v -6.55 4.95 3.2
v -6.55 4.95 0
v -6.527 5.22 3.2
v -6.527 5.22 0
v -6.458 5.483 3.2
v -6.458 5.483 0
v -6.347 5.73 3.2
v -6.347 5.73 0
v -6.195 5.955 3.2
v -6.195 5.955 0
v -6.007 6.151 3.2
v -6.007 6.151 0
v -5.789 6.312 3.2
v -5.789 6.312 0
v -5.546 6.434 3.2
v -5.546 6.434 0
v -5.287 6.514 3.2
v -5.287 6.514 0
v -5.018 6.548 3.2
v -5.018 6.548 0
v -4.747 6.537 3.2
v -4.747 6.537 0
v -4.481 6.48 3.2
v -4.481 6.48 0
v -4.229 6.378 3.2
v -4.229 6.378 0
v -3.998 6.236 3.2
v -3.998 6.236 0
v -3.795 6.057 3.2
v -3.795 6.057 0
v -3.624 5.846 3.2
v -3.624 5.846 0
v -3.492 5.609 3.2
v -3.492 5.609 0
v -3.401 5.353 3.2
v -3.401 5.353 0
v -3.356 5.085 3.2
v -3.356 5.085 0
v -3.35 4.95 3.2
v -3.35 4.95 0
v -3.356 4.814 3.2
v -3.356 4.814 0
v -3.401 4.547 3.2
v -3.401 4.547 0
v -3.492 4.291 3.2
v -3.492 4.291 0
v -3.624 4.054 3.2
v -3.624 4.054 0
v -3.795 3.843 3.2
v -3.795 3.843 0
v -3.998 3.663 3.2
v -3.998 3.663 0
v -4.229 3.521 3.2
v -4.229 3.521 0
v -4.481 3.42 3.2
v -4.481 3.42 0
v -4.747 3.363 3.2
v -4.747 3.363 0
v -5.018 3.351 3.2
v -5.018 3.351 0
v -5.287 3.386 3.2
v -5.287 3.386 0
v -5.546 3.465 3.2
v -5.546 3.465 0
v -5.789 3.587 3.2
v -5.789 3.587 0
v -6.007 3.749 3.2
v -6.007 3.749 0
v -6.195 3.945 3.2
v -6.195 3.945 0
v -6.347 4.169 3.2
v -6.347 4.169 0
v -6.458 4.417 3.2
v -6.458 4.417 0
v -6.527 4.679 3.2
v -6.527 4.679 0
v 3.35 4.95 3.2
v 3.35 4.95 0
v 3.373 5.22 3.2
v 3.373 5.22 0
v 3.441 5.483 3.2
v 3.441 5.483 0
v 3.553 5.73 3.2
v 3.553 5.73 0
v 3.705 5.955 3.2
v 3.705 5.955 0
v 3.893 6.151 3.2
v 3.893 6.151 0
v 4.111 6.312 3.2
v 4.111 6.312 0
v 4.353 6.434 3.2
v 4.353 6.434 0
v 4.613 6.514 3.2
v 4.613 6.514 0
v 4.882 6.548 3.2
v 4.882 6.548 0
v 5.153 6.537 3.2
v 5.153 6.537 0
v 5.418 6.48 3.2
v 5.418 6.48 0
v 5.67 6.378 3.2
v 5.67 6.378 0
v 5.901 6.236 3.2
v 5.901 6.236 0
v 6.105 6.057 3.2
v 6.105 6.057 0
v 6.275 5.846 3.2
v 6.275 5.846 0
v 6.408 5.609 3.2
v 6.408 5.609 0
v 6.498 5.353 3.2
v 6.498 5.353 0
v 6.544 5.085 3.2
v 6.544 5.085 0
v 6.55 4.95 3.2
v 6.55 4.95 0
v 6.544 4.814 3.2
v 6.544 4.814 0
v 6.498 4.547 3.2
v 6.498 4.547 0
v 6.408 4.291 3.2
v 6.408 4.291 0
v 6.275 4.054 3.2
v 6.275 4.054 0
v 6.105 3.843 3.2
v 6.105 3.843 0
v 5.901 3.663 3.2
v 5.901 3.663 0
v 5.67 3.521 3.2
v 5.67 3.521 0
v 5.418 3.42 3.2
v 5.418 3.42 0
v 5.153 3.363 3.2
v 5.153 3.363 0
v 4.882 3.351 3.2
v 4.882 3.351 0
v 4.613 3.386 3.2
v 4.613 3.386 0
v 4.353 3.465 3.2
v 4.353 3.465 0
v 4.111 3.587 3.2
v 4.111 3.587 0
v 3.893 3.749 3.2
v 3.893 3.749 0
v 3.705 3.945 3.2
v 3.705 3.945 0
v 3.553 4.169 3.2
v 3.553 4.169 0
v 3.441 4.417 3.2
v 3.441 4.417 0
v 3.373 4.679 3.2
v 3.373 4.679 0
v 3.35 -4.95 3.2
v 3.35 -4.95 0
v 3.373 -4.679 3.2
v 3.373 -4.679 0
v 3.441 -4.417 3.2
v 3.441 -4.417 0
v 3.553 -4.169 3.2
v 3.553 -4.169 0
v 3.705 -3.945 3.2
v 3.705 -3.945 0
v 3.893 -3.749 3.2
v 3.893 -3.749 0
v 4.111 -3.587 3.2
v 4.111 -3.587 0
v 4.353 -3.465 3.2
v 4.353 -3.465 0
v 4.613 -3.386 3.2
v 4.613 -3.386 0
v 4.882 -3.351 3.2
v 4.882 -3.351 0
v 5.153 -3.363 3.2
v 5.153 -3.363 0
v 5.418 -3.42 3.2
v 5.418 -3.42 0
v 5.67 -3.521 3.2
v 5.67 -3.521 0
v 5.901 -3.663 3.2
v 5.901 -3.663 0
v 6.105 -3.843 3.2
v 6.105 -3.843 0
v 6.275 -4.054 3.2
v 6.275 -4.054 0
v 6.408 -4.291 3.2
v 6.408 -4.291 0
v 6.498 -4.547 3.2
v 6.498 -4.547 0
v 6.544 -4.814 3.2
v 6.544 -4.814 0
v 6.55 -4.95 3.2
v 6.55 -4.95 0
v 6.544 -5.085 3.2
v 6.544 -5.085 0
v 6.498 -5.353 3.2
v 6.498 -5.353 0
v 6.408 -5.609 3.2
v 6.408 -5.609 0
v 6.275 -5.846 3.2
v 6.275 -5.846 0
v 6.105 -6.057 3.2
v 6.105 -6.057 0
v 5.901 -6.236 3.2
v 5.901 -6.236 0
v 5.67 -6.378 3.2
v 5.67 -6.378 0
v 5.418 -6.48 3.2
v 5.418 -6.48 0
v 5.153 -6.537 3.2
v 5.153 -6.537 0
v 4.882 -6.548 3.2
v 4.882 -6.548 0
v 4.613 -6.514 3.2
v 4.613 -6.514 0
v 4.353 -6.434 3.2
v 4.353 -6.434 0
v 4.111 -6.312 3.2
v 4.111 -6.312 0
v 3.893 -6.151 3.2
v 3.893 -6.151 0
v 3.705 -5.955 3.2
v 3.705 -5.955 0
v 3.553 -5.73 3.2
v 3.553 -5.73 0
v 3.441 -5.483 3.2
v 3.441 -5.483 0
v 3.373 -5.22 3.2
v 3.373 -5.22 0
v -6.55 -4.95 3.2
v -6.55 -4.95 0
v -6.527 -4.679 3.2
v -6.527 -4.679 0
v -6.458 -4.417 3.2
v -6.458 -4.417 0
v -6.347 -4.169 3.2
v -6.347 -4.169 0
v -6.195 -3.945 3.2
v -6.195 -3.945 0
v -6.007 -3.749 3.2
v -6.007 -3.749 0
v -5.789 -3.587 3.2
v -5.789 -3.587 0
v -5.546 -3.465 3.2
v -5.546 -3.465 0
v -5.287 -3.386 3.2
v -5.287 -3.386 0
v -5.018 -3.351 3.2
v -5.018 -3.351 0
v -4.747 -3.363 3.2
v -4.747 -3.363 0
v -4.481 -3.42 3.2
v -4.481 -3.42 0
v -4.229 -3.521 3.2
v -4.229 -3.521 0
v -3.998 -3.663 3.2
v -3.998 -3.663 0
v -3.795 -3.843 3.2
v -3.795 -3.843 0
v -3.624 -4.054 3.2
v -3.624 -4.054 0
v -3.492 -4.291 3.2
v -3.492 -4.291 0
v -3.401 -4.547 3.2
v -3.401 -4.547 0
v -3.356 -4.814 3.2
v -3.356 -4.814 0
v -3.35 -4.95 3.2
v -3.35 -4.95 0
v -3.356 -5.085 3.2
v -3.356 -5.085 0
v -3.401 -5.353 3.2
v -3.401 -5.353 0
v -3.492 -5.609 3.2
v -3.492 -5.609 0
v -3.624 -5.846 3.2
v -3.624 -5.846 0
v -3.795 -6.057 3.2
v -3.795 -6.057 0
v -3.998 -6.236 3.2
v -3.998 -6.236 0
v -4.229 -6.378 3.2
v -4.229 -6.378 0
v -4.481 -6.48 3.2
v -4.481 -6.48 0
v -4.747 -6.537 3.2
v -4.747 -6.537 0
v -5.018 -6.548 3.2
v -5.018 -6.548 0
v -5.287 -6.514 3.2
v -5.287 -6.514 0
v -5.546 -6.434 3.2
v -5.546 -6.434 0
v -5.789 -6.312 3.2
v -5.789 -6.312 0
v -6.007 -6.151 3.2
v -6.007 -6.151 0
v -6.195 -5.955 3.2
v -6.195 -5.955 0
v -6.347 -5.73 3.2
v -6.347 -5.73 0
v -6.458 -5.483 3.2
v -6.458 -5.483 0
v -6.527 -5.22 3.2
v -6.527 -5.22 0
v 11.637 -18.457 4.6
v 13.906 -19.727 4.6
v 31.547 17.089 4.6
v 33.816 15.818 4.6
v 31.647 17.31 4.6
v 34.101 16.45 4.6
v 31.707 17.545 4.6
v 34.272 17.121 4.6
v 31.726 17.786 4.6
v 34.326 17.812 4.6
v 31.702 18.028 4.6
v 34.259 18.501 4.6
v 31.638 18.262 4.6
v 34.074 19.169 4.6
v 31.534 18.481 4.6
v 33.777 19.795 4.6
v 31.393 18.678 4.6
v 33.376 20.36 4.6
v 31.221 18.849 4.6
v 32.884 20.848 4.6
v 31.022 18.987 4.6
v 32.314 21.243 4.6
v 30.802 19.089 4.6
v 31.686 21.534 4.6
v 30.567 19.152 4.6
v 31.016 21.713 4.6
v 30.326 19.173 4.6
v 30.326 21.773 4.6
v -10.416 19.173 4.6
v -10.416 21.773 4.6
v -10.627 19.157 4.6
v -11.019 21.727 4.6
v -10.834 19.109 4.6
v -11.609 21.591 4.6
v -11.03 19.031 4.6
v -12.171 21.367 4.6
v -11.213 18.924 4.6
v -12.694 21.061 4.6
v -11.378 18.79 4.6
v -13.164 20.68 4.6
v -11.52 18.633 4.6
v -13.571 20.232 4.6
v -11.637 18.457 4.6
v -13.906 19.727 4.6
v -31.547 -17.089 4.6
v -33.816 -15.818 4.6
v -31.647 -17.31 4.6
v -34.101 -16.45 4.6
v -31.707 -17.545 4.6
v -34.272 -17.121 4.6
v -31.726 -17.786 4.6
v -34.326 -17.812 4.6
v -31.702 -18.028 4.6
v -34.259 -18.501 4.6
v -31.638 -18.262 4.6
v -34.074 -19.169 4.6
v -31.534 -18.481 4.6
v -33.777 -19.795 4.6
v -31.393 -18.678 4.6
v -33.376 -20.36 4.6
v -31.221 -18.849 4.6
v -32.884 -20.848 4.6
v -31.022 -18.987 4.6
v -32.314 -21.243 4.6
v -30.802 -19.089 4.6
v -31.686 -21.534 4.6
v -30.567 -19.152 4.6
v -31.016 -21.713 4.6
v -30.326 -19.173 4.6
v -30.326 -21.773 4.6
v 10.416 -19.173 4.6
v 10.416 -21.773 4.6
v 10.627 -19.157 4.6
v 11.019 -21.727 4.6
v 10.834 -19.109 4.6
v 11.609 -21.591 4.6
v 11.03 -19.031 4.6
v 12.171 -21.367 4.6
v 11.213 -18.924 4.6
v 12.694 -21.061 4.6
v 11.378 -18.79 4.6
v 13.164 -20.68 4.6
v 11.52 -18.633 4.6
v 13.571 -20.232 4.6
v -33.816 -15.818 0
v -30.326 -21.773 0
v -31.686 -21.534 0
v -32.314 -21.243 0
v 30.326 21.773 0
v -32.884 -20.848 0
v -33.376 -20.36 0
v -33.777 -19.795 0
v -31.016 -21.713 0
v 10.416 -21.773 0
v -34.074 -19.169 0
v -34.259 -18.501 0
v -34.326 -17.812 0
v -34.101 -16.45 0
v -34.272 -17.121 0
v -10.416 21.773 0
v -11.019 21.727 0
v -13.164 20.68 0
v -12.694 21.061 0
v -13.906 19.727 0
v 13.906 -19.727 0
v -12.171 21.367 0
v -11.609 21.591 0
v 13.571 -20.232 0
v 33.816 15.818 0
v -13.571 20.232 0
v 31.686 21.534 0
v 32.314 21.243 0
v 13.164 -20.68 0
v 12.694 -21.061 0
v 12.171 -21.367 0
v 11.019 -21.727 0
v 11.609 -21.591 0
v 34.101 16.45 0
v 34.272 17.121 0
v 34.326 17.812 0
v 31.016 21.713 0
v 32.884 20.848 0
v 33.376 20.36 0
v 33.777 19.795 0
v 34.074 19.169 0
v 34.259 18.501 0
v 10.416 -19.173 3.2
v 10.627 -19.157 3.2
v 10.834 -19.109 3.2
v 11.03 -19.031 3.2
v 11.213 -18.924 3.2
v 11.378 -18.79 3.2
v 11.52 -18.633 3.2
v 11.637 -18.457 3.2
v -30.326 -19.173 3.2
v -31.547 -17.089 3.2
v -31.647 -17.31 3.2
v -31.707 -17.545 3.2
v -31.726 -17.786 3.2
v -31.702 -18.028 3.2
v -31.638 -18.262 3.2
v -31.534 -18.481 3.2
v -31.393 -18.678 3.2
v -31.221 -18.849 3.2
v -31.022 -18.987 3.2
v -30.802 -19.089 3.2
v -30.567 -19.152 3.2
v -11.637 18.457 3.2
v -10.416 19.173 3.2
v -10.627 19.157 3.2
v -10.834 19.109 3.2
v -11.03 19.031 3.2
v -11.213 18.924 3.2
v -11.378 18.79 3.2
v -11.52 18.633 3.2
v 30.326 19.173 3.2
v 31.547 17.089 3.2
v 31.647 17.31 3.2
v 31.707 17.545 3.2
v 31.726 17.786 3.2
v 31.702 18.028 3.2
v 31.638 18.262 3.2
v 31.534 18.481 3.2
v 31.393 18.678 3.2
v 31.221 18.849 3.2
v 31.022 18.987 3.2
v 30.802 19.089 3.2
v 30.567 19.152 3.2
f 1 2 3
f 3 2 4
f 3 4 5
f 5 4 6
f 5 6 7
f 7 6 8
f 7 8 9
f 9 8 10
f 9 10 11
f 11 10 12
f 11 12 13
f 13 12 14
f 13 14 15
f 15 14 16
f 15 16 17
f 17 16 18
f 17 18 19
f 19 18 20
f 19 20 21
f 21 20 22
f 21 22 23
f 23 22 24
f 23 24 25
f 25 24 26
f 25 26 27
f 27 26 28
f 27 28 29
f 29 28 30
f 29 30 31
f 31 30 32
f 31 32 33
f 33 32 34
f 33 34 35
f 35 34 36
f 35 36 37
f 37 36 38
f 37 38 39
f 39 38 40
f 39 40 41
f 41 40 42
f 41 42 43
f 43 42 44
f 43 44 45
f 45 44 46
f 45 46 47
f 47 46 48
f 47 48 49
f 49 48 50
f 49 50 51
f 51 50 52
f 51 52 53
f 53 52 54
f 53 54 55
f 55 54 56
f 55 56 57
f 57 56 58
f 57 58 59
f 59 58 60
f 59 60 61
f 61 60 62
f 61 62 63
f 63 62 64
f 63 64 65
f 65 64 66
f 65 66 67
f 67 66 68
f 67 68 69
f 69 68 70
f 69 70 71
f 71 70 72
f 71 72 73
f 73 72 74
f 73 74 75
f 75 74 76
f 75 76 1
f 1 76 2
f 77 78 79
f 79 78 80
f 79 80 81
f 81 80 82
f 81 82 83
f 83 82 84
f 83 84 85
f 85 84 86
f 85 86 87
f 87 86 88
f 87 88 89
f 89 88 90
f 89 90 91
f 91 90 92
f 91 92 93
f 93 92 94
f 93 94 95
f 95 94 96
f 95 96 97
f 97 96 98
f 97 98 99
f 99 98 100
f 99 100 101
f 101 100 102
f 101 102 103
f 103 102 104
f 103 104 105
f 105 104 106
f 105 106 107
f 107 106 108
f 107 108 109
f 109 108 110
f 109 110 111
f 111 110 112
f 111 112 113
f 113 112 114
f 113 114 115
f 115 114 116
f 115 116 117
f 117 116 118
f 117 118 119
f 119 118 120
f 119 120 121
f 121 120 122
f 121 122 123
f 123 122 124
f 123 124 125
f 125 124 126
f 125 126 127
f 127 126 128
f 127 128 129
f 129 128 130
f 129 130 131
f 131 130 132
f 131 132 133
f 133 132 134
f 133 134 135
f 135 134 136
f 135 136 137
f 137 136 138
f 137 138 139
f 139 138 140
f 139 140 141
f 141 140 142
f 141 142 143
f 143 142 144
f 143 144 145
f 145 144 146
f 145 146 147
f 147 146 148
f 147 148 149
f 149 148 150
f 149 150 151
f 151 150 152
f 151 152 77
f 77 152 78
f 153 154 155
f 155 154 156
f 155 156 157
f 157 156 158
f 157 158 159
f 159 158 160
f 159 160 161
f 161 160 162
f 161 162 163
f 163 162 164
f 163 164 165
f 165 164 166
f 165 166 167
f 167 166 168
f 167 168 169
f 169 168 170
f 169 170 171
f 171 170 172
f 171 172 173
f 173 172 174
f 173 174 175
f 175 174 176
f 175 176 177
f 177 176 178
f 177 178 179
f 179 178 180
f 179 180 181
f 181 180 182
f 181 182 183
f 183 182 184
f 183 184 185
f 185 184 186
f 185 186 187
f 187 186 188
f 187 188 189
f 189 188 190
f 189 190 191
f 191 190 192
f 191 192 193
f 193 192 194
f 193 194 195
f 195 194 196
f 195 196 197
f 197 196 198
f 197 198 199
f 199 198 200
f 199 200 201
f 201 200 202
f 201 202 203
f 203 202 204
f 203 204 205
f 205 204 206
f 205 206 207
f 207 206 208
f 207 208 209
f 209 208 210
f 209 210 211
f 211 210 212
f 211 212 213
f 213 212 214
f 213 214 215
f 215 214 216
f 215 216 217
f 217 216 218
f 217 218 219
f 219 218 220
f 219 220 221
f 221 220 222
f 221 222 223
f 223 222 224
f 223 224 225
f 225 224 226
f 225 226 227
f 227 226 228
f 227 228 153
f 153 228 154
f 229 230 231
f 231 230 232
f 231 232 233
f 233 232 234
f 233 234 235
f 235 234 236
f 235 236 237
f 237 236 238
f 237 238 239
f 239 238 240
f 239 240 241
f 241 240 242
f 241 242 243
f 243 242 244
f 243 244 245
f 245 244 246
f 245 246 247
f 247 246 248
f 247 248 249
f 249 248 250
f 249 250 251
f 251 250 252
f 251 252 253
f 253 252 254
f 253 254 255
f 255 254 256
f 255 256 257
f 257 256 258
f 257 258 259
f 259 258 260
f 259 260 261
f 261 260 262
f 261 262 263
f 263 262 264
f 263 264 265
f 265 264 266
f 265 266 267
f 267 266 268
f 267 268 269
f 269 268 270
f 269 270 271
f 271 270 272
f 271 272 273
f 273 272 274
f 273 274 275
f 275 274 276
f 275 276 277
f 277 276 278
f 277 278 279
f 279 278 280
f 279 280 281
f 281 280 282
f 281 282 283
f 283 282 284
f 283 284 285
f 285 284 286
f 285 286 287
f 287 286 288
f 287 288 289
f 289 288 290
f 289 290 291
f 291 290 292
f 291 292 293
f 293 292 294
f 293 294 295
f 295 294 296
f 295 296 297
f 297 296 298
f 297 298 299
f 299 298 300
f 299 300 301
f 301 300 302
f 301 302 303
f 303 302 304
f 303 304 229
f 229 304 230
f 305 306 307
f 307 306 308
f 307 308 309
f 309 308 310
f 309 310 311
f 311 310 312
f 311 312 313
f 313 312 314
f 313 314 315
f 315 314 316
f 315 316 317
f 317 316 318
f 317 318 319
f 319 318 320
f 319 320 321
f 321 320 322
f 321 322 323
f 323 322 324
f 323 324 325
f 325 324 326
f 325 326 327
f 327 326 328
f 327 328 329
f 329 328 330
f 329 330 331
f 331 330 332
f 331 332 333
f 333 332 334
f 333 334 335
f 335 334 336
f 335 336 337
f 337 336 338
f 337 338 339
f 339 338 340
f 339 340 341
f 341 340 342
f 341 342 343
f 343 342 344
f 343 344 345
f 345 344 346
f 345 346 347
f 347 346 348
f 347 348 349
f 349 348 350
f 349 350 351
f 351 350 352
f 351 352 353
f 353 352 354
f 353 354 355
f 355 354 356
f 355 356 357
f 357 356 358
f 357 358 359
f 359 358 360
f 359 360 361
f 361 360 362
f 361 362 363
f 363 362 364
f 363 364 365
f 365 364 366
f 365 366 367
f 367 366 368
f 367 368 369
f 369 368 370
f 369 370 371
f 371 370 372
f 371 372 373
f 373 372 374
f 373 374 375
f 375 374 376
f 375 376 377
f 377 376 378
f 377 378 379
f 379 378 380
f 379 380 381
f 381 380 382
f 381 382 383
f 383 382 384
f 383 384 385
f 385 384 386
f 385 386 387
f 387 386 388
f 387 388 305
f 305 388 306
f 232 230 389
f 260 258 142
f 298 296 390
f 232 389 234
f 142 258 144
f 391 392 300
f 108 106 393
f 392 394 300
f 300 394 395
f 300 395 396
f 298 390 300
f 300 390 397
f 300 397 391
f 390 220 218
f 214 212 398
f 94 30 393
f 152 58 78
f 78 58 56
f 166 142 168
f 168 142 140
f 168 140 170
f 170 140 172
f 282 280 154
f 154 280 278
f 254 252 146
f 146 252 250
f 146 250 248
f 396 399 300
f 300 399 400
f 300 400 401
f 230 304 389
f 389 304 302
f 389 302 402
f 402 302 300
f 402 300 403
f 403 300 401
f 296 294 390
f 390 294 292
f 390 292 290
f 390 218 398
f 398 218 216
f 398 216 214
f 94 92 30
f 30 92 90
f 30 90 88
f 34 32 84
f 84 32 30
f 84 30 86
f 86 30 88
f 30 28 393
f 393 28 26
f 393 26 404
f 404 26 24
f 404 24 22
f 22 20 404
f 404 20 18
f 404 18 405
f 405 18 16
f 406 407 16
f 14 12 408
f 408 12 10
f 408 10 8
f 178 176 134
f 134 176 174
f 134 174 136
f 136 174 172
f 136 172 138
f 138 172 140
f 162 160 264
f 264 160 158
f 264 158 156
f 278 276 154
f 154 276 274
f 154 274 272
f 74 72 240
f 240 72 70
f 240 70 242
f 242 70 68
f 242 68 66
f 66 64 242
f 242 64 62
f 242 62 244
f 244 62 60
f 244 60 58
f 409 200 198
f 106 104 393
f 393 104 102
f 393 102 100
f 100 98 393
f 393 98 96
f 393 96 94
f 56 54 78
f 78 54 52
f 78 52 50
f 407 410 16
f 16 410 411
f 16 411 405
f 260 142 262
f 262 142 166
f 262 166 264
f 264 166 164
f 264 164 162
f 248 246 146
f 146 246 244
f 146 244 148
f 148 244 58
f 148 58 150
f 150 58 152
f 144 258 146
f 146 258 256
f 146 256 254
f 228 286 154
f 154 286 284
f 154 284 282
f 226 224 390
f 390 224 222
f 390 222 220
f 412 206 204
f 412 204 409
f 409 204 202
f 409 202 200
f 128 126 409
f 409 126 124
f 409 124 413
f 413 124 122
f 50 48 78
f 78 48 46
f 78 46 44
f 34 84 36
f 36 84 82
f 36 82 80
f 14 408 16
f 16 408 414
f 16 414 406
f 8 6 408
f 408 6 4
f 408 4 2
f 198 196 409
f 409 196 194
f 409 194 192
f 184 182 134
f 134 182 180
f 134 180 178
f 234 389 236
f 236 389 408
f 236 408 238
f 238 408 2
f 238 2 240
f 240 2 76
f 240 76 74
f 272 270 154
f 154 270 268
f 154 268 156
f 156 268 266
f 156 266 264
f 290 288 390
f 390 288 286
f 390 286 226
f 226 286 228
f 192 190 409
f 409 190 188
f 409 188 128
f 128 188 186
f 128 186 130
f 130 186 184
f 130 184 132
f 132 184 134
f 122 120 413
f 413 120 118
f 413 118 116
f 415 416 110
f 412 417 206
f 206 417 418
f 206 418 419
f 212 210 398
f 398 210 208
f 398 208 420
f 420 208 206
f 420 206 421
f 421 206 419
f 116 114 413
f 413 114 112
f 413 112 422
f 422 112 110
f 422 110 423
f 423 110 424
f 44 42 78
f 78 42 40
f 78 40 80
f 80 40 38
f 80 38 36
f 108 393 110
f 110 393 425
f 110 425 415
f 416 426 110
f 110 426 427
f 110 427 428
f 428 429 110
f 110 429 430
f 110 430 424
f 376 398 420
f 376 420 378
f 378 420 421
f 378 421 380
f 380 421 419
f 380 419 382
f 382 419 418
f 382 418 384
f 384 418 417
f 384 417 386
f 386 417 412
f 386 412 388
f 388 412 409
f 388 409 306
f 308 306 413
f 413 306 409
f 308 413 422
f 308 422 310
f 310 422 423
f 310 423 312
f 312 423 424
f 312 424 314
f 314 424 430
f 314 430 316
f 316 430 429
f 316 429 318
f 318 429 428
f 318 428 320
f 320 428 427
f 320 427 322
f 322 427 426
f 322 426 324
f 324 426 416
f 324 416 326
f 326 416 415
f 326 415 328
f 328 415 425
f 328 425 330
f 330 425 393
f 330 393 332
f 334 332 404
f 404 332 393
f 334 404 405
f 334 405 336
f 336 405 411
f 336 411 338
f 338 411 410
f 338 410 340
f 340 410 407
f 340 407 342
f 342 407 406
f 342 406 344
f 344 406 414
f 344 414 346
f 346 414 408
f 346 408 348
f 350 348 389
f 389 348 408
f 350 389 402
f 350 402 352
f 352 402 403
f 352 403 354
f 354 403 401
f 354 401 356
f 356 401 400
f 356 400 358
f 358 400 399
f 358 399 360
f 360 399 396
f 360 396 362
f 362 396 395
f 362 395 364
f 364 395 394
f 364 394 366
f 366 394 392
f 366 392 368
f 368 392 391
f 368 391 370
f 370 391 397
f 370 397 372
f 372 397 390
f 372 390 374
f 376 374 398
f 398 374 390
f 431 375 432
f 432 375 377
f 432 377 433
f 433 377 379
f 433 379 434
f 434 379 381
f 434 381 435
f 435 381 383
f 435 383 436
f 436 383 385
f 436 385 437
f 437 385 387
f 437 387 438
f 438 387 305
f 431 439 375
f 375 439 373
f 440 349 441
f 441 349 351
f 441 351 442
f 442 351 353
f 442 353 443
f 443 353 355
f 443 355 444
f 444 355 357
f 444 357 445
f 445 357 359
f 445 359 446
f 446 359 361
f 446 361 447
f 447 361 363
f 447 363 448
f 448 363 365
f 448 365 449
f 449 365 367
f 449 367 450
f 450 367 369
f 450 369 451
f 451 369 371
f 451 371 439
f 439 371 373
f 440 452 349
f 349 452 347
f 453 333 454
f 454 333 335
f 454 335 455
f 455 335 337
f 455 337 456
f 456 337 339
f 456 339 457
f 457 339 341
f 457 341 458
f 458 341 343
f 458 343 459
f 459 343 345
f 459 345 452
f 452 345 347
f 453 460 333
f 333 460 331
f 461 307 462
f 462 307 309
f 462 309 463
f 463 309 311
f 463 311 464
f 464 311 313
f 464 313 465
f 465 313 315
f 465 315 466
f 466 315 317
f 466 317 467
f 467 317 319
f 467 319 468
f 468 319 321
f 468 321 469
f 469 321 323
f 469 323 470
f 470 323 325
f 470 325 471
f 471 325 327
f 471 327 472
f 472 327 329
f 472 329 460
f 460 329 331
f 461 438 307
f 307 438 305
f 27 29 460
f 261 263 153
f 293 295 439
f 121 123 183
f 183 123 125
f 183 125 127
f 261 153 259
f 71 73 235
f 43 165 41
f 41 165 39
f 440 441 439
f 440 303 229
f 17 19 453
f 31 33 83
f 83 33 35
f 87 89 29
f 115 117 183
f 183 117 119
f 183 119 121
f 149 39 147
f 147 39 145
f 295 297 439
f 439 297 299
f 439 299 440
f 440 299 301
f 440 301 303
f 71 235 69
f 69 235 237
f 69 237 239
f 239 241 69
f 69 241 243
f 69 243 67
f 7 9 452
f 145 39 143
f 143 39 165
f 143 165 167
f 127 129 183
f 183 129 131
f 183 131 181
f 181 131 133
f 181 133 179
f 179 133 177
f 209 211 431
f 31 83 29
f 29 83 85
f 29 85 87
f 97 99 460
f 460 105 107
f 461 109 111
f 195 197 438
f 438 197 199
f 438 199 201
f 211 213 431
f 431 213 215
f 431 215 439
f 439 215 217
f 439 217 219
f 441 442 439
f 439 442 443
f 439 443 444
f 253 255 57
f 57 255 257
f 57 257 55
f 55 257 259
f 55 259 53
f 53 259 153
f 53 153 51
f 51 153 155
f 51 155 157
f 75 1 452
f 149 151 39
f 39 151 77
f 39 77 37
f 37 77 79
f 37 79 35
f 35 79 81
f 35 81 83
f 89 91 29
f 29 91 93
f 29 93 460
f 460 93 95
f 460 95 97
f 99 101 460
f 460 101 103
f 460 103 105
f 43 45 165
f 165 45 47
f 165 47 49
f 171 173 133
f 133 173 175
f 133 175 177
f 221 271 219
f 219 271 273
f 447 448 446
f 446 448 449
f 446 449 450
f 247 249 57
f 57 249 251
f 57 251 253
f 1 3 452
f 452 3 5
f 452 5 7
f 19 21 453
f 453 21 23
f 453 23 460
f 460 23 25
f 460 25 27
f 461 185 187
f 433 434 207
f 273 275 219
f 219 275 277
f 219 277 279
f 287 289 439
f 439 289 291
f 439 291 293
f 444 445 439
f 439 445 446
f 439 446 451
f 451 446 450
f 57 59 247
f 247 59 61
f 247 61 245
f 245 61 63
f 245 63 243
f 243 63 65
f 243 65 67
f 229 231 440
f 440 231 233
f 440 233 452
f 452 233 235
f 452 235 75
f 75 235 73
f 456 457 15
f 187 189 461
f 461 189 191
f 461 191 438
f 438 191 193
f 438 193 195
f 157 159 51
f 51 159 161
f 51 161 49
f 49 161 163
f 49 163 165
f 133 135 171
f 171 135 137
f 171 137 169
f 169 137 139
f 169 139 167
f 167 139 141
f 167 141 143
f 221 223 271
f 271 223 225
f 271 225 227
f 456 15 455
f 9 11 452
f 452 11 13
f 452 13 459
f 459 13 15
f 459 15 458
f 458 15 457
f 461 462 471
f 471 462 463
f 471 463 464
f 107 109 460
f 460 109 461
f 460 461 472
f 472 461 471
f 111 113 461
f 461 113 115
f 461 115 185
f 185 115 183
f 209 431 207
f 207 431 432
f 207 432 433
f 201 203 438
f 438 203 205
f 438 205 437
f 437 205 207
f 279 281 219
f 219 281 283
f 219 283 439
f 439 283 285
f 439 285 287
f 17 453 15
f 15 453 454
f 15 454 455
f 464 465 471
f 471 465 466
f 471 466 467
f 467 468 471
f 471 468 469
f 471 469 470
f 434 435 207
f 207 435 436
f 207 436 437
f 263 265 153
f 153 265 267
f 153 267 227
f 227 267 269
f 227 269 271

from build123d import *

# Parameters (mm, degrees)
SKETCH1_R           = 1.6
BOSS_EXTRUDE1_DEPTH = 4.6
CUT_EXTRUDE4_DEPTH  = 1.4


with BuildPart() as part:
    # Sketch1 → Boss-Extrude1 (new body)
    with BuildSketch(Plane.XY):
        with BuildLine():
            Line((-33.815617771, -15.817972293), (-13.905712582, 19.727465886))
            ThreePointArc((-13.905712582, 19.727465886), (-12.438375238, 21.223732505), (-10.415875199, 21.77271909))
            Line((-10.415875199, 21.77271909), (30.325780388, 21.77271909))
            ThreePointArc((30.325780388, 21.77271909), (33.776793804, 19.795219128), (33.815617771, 15.817972293))
            Line((33.815617771, 15.817972293), (13.905712582, -19.727465886))
            ThreePointArc((13.905712582, -19.727465886), (12.438375238, -21.223732505), (10.415875199, -21.77271909))
            Line((10.415875199, -21.77271909), (-30.325780388, -21.77271909))
            ThreePointArc((-30.325780388, -21.77271909), (-33.776793804, -19.795219128), (-33.815617771, -15.817972293))
        make_face()
        with Locations((-4.949747468, 4.949747468)):
            Circle(SKETCH1_R, mode=Mode.SUBTRACT)
        with Locations((4.949747468, 4.949747468)):
            Circle(SKETCH1_R, mode=Mode.SUBTRACT)
        with Locations((4.949747468, -4.949747468)):
            Circle(SKETCH1_R, mode=Mode.SUBTRACT)
        with Locations((-4.949747468, -4.949747468)):
            Circle(SKETCH1_R, mode=Mode.SUBTRACT)
    extrude(amount=BOSS_EXTRUDE1_DEPTH)

    # Sketch5 → Cut-Extrude4 (cut)
    with BuildSketch(Plane.XY.offset(4.6)):
        with BuildLine():
            Line((11.637318283, -18.456880469), (31.547223472, 17.088557711))
            ThreePointArc((31.547223472, 17.088557711), (31.533635084, 18.480594103), (30.325780388, 19.17271909))
            Line((30.325780388, 19.17271909), (-10.415875199, 19.17271909))
            ThreePointArc((-10.415875199, 19.17271909), (-11.123750213, 18.980573785), (-11.637318283, 18.456880469))
            Line((-11.637318283, 18.456880469), (-31.547223472, -17.088557711))
            ThreePointArc((-31.547223472, -17.088557711), (-31.533635084, -18.480594103), (-30.325780388, -19.17271909))
            Line((-30.325780388, -19.17271909), (10.415875199, -19.17271909))
            ThreePointArc((10.415875199, -19.17271909), (11.123750213, -18.980573785), (11.637318283, -18.456880469))
        make_face()
    extrude(amount=-CUT_EXTRUDE4_DEPTH, mode=Mode.SUBTRACT)


solid = part.part
